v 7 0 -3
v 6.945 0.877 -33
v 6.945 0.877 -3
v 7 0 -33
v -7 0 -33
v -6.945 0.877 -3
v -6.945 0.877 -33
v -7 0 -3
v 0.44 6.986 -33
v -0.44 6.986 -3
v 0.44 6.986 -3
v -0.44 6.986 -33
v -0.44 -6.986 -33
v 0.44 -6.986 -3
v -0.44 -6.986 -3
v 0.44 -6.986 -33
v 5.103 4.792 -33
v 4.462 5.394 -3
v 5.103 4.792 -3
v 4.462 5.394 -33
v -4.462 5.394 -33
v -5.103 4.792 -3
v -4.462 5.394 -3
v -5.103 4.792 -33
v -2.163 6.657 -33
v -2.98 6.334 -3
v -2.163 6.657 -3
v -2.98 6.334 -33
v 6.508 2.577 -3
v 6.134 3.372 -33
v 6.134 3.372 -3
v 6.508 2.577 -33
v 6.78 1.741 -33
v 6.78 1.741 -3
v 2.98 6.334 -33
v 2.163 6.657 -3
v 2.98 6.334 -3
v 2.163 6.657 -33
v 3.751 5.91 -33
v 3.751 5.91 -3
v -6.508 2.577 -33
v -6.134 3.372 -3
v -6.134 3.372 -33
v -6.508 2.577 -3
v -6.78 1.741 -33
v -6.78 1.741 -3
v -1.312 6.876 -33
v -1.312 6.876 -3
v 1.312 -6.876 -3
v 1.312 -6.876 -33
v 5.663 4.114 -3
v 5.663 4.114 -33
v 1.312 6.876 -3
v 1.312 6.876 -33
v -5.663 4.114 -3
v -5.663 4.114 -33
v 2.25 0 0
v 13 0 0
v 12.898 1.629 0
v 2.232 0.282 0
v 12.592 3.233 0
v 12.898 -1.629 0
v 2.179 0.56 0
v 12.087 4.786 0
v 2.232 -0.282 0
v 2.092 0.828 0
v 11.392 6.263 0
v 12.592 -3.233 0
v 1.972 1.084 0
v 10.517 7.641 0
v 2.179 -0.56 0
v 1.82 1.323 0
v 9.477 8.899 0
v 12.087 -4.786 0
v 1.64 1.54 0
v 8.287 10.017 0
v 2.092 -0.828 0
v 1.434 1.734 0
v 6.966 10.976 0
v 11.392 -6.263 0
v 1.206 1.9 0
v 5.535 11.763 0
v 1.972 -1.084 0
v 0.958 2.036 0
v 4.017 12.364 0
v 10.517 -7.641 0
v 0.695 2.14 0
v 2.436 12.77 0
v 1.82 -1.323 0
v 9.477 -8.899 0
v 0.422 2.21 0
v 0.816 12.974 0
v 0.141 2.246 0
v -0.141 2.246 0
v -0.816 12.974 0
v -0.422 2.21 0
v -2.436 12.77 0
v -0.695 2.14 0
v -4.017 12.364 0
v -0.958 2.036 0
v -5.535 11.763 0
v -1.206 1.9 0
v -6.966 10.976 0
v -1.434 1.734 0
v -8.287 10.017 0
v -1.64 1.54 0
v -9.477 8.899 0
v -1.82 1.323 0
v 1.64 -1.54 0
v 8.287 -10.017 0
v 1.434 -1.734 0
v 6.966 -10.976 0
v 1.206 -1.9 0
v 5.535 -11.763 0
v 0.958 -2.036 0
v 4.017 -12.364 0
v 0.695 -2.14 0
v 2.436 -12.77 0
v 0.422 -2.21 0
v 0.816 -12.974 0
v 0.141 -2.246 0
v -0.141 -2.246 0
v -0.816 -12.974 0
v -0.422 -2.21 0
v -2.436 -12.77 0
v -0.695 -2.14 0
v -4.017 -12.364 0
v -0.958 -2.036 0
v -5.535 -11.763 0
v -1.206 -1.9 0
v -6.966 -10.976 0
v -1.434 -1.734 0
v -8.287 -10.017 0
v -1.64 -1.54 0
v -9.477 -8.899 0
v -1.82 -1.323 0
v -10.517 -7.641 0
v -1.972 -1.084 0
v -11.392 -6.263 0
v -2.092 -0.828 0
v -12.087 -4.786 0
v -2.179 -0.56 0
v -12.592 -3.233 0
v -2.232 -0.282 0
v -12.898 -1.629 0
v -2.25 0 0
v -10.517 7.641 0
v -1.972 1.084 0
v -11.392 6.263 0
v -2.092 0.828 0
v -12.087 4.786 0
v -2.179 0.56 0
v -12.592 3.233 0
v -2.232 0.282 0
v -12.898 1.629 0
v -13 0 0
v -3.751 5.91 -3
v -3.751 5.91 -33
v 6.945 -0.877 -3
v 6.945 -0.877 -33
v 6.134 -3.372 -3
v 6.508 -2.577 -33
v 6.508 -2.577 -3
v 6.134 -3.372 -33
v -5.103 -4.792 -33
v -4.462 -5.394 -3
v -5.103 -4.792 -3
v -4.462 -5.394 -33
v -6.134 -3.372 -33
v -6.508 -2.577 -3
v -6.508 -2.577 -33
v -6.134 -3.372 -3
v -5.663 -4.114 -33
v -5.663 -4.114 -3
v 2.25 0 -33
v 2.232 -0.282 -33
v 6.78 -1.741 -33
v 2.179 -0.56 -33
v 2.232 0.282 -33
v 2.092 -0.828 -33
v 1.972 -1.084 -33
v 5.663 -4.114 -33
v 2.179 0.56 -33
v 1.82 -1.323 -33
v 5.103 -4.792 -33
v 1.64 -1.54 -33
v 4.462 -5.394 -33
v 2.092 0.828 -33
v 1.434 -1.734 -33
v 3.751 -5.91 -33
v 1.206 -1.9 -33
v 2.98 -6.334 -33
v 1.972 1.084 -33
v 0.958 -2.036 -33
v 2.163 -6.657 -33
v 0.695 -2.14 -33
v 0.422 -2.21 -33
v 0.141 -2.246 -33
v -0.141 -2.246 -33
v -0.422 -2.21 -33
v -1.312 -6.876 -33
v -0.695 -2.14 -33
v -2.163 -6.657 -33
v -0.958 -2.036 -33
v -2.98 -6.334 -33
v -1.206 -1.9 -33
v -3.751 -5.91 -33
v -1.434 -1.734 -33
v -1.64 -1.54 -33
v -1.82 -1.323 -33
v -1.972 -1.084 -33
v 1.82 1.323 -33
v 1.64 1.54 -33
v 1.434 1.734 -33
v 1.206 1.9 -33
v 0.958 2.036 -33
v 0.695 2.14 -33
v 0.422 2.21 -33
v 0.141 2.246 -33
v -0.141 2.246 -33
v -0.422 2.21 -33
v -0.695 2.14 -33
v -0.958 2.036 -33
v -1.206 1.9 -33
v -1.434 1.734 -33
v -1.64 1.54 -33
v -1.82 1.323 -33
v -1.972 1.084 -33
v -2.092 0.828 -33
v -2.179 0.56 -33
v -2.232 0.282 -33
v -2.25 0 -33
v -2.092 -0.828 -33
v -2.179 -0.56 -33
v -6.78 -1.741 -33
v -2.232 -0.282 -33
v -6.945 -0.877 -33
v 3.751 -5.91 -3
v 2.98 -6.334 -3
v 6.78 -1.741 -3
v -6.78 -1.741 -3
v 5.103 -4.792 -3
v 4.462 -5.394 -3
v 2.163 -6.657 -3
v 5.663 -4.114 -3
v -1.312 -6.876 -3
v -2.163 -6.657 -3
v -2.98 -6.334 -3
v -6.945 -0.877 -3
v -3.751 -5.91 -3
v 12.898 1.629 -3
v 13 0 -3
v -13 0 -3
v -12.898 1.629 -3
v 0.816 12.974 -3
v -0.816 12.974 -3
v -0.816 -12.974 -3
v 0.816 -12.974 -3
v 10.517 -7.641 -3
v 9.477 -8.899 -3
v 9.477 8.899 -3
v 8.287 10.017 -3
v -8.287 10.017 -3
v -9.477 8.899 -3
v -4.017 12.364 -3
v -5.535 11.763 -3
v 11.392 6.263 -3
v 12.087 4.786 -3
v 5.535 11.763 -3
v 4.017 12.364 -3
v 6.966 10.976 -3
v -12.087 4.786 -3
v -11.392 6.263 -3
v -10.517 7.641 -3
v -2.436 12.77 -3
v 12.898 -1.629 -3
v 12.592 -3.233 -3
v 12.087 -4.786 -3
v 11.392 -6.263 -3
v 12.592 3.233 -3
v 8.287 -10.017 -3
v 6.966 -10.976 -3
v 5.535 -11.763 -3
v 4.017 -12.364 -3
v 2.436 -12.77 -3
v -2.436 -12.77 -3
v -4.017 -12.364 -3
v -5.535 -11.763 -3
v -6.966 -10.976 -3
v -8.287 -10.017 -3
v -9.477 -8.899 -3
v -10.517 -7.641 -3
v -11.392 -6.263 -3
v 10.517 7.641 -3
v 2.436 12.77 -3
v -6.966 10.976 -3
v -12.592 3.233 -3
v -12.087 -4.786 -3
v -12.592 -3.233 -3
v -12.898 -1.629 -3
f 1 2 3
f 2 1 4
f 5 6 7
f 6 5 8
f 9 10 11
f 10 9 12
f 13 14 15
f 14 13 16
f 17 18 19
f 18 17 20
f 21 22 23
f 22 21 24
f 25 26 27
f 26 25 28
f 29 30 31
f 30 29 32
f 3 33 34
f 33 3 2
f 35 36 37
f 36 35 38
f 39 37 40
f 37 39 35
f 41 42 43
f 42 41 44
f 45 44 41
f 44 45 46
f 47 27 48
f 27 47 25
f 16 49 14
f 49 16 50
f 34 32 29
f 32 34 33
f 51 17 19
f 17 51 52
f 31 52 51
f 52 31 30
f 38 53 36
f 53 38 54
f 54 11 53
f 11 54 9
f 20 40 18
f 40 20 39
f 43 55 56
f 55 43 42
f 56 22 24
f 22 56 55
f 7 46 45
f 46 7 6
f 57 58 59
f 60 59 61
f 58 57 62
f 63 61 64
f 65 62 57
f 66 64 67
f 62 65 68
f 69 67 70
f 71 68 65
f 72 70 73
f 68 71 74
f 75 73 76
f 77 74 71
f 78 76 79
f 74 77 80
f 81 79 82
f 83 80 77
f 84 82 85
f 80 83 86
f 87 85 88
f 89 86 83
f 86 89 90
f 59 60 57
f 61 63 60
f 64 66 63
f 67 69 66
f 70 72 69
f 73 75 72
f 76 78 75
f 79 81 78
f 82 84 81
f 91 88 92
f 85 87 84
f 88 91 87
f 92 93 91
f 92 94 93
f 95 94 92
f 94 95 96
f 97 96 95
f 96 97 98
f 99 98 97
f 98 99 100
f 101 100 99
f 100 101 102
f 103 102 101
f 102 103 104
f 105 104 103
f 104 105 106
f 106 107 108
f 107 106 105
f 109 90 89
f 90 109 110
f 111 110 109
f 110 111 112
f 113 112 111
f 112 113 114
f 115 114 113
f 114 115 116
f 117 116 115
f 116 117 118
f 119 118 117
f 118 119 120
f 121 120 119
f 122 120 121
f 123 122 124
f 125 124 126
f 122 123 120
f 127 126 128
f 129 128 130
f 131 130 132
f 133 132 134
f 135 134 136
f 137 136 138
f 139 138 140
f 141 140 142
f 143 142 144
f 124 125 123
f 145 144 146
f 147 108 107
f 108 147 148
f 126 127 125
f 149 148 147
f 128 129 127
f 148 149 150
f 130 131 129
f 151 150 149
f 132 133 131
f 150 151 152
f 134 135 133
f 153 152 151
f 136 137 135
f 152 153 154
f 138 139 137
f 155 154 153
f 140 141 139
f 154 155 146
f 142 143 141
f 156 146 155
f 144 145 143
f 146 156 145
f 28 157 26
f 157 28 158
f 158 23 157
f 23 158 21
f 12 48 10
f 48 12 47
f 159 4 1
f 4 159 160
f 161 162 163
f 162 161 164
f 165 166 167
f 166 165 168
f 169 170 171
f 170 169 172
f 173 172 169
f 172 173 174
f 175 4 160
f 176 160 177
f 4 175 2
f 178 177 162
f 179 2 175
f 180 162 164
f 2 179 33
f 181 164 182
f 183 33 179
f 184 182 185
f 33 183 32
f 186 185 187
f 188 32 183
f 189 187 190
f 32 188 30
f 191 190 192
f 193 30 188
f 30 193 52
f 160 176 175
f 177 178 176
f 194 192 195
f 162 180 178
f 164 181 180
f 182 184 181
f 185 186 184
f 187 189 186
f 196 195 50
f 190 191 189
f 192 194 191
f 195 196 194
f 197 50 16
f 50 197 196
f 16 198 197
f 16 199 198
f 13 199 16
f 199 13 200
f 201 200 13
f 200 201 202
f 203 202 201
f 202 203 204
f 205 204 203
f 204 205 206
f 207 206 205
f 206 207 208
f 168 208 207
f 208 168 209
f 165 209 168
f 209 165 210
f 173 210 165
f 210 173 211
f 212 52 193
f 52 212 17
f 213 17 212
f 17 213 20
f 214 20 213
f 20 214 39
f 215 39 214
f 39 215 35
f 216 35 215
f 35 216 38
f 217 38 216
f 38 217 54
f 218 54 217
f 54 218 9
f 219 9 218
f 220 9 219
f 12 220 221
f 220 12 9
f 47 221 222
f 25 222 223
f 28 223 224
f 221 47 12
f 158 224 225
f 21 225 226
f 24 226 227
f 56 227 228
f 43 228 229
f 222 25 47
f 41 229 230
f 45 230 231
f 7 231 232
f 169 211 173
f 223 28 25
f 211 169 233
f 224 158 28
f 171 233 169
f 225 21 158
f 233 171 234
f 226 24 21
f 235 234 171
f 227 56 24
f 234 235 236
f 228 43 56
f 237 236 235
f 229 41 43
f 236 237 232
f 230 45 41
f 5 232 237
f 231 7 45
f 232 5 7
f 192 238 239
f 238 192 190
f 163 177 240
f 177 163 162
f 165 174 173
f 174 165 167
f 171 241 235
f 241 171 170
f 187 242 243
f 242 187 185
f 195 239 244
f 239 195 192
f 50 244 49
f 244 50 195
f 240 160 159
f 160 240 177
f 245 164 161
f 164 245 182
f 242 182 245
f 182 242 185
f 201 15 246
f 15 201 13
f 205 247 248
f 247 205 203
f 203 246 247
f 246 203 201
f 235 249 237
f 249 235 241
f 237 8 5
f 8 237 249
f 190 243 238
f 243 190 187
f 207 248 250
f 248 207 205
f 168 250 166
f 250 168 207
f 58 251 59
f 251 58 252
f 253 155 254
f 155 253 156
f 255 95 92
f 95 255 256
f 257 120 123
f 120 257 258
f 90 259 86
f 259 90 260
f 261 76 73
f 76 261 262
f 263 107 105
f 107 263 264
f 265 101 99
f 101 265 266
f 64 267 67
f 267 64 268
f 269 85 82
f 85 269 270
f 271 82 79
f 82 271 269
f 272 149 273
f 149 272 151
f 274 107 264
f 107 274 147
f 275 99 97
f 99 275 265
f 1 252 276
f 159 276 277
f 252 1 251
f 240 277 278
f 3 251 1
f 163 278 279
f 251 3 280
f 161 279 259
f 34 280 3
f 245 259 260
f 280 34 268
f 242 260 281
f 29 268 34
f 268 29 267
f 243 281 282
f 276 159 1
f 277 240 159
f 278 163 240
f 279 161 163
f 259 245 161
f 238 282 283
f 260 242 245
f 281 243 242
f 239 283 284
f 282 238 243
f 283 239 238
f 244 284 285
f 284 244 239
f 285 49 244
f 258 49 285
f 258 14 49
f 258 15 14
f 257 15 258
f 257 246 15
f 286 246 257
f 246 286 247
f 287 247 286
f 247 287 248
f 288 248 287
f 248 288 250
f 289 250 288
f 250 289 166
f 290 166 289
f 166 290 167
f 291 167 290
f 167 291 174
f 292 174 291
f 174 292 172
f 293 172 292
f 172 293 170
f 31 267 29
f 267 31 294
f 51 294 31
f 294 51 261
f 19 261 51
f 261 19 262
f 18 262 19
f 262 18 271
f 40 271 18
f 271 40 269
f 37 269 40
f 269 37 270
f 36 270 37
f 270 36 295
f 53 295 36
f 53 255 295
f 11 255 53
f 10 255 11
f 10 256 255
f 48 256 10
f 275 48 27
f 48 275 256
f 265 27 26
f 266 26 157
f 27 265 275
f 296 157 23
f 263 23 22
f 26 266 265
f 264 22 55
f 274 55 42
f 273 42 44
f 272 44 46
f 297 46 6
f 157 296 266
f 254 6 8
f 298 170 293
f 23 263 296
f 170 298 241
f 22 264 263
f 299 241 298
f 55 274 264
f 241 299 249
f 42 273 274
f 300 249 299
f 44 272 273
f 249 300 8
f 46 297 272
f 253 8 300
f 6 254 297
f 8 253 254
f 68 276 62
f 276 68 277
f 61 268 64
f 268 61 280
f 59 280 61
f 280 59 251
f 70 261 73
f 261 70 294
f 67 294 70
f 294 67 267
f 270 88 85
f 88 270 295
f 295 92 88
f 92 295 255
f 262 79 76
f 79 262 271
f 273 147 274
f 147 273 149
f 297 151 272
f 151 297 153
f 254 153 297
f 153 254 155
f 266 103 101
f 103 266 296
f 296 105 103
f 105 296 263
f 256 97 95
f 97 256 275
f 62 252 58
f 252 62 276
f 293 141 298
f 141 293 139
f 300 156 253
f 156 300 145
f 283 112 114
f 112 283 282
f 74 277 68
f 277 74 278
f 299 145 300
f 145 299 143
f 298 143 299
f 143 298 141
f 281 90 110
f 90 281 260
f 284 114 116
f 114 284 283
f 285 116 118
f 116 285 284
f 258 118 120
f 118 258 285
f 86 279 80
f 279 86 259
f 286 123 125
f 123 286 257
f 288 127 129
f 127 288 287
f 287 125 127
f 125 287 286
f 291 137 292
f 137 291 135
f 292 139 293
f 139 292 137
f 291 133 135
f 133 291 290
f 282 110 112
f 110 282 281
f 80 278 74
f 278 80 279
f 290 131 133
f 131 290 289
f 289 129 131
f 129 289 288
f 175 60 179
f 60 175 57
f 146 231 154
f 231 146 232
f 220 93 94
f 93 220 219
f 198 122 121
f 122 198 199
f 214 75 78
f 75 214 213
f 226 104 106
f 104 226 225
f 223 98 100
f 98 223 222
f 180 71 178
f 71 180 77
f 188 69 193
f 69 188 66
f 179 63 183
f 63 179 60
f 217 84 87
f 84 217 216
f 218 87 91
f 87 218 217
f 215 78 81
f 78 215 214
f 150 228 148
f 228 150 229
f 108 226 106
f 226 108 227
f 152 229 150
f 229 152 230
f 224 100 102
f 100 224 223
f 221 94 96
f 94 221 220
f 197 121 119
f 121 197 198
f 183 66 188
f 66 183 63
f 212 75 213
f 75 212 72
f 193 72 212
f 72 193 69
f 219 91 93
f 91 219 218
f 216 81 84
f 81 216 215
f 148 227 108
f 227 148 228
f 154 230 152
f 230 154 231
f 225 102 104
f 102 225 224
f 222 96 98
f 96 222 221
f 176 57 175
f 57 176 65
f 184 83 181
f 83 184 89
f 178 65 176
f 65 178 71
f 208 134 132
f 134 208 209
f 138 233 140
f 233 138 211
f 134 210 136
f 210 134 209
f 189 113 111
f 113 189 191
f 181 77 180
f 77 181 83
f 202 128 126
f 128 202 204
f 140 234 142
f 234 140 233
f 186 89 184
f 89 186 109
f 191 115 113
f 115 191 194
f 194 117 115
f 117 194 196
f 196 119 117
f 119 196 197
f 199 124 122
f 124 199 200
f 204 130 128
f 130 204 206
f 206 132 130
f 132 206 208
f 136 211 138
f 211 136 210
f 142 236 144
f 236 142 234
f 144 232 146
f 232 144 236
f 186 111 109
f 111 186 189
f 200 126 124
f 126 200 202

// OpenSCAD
$fn = 50;


difference() {
	union() {
		translate(v = [0, 0, -33.0000000000]) {
			cylinder(h = 33, r = 7.0000000000);
		}
		translate(v = [0, 0, -3.0000000000]) {
			cylinder(h = 3, r = 13.0000000000);
		}
	}
	union() {
		#translate(v = [0, 0, -33]) {
			cylinder(h = 33, r = 2.2500000000);
		}
	}
}
